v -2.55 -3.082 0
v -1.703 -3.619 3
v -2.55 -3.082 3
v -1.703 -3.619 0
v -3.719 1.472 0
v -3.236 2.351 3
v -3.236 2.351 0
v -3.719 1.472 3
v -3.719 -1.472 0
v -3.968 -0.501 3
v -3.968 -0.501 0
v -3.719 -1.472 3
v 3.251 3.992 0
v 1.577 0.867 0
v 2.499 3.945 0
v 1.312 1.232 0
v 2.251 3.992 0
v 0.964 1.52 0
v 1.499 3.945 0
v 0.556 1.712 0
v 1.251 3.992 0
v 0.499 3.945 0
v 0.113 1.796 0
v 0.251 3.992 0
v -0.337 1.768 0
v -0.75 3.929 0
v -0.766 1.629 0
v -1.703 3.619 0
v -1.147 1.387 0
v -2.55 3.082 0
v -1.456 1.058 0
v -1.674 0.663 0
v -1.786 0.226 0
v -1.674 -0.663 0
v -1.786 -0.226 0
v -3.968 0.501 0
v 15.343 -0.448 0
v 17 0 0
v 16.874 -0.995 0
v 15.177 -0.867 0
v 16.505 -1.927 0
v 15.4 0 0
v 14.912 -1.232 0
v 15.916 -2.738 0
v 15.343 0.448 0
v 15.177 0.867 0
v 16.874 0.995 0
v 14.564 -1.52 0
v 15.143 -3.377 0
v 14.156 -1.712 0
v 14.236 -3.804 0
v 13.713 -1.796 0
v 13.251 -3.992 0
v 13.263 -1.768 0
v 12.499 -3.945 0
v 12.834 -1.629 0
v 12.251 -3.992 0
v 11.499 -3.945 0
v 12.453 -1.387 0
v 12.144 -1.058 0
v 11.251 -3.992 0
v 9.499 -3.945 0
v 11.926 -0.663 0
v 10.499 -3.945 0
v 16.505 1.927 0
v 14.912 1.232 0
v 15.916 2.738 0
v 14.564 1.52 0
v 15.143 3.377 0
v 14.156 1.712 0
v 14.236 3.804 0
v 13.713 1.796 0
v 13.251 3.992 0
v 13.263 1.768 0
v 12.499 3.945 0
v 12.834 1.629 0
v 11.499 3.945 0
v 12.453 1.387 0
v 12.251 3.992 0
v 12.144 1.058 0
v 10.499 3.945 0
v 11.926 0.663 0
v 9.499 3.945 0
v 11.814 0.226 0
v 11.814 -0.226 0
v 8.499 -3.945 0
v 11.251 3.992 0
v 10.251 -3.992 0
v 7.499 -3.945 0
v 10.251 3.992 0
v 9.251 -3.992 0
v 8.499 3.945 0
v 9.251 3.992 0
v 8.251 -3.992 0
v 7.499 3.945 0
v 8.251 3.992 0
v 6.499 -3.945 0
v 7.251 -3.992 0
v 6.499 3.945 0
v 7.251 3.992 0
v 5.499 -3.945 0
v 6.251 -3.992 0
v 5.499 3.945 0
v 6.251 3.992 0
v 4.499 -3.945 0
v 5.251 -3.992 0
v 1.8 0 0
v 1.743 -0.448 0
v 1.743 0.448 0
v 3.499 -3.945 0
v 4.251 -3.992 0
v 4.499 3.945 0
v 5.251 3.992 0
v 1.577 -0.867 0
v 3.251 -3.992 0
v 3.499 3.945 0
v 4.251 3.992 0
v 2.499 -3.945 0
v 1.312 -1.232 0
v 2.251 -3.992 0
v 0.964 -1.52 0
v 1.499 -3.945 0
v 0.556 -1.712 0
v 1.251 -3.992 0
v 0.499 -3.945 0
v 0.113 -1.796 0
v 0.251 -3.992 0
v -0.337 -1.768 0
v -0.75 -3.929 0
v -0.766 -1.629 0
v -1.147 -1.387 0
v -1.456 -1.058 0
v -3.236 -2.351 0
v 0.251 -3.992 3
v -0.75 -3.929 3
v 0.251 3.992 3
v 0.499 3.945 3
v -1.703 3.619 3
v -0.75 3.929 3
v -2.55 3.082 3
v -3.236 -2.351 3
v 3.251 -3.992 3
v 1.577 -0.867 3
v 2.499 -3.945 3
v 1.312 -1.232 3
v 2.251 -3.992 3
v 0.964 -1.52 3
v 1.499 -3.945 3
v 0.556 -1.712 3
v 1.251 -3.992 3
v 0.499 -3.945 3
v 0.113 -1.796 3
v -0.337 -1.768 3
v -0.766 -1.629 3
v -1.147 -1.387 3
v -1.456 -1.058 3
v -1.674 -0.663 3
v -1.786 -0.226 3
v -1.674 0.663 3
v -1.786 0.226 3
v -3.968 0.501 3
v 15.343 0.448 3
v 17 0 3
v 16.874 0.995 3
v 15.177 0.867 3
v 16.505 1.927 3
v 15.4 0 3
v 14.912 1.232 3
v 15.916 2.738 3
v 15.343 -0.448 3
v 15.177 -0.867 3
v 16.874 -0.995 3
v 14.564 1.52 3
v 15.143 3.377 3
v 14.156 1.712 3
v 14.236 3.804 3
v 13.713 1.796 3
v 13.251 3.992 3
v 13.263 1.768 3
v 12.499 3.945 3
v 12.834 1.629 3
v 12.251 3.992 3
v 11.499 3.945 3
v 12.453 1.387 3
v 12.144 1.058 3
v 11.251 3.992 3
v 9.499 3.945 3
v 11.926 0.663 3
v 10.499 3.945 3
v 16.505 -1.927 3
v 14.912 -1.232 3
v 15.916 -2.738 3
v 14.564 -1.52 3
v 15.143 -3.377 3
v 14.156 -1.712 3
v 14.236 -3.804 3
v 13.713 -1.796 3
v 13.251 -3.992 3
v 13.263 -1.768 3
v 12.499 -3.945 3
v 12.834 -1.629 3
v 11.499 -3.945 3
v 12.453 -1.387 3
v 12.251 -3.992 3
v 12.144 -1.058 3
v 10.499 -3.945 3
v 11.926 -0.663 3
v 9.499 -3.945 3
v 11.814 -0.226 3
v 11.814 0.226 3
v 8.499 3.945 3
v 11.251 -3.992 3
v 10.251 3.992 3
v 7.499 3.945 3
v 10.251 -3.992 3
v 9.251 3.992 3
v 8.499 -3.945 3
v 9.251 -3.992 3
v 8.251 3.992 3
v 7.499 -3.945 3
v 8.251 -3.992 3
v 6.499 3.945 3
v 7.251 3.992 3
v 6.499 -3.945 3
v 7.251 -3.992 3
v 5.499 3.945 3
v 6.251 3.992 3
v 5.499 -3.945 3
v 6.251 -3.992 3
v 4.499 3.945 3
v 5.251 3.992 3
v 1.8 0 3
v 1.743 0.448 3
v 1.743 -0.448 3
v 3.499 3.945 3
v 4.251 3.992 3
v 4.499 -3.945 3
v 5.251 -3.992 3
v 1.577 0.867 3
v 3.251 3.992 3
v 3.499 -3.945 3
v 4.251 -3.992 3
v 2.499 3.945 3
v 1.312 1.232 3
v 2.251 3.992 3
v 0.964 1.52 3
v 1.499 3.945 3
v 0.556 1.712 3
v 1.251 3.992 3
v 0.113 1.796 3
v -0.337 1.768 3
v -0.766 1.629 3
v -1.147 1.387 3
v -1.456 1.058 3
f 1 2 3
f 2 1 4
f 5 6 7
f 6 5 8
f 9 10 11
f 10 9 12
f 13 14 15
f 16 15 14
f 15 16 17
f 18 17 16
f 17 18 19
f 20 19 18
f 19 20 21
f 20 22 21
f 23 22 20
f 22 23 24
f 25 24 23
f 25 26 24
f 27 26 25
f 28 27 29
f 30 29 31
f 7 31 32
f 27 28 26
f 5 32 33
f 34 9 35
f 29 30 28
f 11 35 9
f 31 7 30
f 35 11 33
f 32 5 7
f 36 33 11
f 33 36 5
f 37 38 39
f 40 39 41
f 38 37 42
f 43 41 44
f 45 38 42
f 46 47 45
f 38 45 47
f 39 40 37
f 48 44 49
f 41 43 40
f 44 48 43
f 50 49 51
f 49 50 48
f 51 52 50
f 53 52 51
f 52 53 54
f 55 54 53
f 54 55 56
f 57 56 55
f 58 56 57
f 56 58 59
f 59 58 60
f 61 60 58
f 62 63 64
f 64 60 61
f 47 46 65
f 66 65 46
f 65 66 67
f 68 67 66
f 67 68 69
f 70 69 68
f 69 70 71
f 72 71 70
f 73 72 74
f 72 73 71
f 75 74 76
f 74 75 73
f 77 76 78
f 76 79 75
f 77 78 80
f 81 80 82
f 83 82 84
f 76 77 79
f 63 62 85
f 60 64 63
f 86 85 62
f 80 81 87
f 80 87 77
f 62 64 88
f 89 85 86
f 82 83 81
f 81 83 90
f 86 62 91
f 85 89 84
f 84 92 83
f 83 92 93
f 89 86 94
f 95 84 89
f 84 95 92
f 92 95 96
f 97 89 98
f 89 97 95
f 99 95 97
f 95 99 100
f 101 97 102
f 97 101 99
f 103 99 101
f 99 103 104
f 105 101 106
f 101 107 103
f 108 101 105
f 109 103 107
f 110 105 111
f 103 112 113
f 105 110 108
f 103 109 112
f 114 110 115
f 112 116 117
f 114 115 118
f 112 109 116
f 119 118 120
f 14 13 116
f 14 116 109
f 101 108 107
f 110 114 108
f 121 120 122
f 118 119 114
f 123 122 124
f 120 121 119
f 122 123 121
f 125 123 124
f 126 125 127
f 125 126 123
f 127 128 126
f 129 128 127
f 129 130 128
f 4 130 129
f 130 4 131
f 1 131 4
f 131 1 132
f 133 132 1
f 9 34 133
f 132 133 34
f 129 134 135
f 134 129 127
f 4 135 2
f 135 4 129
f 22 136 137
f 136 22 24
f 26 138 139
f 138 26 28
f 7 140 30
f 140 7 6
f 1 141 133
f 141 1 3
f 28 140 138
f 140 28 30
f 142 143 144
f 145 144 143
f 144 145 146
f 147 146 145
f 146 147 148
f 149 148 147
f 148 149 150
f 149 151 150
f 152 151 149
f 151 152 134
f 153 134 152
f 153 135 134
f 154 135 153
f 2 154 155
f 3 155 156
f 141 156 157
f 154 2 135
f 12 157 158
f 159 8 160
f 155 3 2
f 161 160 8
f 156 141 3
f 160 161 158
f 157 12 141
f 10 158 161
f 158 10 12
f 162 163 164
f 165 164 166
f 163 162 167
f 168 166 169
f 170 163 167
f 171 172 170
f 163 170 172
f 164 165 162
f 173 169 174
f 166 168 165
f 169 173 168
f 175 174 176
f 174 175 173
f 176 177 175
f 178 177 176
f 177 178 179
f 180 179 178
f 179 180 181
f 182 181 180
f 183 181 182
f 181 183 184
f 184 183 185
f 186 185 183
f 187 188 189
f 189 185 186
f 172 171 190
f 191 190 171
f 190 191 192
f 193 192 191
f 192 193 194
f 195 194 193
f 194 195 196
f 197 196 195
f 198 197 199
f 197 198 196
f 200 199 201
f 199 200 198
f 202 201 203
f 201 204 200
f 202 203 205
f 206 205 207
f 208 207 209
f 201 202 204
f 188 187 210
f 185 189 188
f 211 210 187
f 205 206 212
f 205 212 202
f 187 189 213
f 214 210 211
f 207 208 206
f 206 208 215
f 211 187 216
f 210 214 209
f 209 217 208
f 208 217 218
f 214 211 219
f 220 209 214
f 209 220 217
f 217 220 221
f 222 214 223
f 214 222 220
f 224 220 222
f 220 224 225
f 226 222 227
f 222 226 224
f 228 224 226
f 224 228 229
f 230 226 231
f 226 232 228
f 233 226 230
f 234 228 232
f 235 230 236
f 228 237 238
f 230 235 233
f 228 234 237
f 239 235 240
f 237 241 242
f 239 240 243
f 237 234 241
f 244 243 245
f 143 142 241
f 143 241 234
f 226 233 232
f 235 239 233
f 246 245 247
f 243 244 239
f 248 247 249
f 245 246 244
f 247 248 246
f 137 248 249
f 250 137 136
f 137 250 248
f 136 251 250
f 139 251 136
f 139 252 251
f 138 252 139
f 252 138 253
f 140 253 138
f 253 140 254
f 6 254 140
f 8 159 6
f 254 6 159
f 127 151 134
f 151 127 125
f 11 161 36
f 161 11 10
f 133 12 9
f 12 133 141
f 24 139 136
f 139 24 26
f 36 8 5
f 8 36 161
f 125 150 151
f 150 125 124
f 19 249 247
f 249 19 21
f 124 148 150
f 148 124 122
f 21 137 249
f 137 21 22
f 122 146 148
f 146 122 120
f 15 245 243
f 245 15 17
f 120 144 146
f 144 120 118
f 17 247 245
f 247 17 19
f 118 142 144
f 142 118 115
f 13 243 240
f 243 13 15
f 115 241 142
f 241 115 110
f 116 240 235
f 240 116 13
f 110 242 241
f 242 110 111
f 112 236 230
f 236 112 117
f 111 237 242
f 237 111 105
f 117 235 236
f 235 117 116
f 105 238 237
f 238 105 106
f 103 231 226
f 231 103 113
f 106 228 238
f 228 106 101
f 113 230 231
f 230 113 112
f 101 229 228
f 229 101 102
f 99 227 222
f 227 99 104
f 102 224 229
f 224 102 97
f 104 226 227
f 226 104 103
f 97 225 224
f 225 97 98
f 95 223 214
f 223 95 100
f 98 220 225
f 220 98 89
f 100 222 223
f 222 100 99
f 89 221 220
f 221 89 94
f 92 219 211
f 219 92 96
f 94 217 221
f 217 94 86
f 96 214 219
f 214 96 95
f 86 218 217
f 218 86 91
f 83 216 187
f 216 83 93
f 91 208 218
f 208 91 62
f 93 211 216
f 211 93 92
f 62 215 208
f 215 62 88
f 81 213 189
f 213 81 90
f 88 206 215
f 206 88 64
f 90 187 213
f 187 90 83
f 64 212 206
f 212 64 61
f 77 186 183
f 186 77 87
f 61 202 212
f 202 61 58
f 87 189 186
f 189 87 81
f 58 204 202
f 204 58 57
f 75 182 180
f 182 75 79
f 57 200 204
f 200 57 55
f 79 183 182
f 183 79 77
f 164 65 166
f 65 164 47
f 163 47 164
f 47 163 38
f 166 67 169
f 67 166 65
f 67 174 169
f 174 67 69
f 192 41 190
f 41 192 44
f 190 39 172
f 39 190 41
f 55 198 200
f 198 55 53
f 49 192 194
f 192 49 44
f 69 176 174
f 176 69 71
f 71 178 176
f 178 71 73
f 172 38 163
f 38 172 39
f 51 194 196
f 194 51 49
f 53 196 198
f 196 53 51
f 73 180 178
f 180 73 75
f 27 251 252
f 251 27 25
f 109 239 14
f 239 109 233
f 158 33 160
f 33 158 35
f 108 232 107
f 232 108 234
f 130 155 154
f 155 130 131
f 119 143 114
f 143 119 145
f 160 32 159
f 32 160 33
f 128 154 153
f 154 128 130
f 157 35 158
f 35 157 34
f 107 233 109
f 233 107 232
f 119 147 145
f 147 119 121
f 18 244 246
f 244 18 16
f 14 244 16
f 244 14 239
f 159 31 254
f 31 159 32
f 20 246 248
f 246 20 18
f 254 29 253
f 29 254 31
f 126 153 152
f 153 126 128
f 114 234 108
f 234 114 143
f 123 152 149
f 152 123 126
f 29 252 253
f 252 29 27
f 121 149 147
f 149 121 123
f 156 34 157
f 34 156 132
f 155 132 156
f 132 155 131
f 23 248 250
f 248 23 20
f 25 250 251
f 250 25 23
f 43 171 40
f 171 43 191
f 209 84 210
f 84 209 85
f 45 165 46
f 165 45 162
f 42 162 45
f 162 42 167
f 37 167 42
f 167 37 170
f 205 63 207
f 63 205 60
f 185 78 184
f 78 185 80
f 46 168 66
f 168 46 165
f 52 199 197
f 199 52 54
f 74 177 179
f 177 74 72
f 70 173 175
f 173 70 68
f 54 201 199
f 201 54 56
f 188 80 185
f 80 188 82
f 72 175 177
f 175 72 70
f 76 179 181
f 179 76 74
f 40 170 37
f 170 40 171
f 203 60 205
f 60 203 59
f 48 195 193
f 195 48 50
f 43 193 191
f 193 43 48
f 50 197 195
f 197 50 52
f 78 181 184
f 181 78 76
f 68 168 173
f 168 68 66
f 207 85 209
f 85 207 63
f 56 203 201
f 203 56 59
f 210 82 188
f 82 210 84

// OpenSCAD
border_x = 20;
border_y = 15;

back_z = 3;
side_z = 28;

side = 3;

case_x = 165 + 2 * border_x;
case_y = 100 + 2 * border_y;

// Display: https://waveshare.com/7inch-hdmi-lcd-c.htm
// Display screw holes
display_x = 156.9;
display_y = 114.96;
display_z = 7.2;
display_left = case_x / 2 - display_x / 2;
display_bottom = case_y / 2 - display_y / 2;

// Board: https://waveshare.com/compute-module-4-poe-board-b.htm
// These are only the holes:
board_x = 118.5;
board_y = 102.8;
board_left = case_x / 2 - board_x / 2;
board_bottom = case_y / 2 - board_y / 2;

// PoE LAN module
// Will be replaced by keystone modules later
lan_x = 80;
lan_y = 29;
lan_z = 23;

// https://amazon.de/dp/B07ZKHB72D
keystone_y = 23;
keystone_z = 17;
keystone_border_y = 41;
keystone_border_z = 19.3;

// LAN cable
lan_cable_d = 5.6;

// LAN cable clamp
difference() {
    for (x = [0:8 + lan_cable_d]) {
        translate([x, 0, 0])
            cylinder(3, d=8, $fn=25);
    }
    for (x = [0, 8 + lan_cable_d]) {
        translate([x, 0, -0.1])
            cylinder(lan_cable_d, d=3.6, $fn=25);
    }
}
